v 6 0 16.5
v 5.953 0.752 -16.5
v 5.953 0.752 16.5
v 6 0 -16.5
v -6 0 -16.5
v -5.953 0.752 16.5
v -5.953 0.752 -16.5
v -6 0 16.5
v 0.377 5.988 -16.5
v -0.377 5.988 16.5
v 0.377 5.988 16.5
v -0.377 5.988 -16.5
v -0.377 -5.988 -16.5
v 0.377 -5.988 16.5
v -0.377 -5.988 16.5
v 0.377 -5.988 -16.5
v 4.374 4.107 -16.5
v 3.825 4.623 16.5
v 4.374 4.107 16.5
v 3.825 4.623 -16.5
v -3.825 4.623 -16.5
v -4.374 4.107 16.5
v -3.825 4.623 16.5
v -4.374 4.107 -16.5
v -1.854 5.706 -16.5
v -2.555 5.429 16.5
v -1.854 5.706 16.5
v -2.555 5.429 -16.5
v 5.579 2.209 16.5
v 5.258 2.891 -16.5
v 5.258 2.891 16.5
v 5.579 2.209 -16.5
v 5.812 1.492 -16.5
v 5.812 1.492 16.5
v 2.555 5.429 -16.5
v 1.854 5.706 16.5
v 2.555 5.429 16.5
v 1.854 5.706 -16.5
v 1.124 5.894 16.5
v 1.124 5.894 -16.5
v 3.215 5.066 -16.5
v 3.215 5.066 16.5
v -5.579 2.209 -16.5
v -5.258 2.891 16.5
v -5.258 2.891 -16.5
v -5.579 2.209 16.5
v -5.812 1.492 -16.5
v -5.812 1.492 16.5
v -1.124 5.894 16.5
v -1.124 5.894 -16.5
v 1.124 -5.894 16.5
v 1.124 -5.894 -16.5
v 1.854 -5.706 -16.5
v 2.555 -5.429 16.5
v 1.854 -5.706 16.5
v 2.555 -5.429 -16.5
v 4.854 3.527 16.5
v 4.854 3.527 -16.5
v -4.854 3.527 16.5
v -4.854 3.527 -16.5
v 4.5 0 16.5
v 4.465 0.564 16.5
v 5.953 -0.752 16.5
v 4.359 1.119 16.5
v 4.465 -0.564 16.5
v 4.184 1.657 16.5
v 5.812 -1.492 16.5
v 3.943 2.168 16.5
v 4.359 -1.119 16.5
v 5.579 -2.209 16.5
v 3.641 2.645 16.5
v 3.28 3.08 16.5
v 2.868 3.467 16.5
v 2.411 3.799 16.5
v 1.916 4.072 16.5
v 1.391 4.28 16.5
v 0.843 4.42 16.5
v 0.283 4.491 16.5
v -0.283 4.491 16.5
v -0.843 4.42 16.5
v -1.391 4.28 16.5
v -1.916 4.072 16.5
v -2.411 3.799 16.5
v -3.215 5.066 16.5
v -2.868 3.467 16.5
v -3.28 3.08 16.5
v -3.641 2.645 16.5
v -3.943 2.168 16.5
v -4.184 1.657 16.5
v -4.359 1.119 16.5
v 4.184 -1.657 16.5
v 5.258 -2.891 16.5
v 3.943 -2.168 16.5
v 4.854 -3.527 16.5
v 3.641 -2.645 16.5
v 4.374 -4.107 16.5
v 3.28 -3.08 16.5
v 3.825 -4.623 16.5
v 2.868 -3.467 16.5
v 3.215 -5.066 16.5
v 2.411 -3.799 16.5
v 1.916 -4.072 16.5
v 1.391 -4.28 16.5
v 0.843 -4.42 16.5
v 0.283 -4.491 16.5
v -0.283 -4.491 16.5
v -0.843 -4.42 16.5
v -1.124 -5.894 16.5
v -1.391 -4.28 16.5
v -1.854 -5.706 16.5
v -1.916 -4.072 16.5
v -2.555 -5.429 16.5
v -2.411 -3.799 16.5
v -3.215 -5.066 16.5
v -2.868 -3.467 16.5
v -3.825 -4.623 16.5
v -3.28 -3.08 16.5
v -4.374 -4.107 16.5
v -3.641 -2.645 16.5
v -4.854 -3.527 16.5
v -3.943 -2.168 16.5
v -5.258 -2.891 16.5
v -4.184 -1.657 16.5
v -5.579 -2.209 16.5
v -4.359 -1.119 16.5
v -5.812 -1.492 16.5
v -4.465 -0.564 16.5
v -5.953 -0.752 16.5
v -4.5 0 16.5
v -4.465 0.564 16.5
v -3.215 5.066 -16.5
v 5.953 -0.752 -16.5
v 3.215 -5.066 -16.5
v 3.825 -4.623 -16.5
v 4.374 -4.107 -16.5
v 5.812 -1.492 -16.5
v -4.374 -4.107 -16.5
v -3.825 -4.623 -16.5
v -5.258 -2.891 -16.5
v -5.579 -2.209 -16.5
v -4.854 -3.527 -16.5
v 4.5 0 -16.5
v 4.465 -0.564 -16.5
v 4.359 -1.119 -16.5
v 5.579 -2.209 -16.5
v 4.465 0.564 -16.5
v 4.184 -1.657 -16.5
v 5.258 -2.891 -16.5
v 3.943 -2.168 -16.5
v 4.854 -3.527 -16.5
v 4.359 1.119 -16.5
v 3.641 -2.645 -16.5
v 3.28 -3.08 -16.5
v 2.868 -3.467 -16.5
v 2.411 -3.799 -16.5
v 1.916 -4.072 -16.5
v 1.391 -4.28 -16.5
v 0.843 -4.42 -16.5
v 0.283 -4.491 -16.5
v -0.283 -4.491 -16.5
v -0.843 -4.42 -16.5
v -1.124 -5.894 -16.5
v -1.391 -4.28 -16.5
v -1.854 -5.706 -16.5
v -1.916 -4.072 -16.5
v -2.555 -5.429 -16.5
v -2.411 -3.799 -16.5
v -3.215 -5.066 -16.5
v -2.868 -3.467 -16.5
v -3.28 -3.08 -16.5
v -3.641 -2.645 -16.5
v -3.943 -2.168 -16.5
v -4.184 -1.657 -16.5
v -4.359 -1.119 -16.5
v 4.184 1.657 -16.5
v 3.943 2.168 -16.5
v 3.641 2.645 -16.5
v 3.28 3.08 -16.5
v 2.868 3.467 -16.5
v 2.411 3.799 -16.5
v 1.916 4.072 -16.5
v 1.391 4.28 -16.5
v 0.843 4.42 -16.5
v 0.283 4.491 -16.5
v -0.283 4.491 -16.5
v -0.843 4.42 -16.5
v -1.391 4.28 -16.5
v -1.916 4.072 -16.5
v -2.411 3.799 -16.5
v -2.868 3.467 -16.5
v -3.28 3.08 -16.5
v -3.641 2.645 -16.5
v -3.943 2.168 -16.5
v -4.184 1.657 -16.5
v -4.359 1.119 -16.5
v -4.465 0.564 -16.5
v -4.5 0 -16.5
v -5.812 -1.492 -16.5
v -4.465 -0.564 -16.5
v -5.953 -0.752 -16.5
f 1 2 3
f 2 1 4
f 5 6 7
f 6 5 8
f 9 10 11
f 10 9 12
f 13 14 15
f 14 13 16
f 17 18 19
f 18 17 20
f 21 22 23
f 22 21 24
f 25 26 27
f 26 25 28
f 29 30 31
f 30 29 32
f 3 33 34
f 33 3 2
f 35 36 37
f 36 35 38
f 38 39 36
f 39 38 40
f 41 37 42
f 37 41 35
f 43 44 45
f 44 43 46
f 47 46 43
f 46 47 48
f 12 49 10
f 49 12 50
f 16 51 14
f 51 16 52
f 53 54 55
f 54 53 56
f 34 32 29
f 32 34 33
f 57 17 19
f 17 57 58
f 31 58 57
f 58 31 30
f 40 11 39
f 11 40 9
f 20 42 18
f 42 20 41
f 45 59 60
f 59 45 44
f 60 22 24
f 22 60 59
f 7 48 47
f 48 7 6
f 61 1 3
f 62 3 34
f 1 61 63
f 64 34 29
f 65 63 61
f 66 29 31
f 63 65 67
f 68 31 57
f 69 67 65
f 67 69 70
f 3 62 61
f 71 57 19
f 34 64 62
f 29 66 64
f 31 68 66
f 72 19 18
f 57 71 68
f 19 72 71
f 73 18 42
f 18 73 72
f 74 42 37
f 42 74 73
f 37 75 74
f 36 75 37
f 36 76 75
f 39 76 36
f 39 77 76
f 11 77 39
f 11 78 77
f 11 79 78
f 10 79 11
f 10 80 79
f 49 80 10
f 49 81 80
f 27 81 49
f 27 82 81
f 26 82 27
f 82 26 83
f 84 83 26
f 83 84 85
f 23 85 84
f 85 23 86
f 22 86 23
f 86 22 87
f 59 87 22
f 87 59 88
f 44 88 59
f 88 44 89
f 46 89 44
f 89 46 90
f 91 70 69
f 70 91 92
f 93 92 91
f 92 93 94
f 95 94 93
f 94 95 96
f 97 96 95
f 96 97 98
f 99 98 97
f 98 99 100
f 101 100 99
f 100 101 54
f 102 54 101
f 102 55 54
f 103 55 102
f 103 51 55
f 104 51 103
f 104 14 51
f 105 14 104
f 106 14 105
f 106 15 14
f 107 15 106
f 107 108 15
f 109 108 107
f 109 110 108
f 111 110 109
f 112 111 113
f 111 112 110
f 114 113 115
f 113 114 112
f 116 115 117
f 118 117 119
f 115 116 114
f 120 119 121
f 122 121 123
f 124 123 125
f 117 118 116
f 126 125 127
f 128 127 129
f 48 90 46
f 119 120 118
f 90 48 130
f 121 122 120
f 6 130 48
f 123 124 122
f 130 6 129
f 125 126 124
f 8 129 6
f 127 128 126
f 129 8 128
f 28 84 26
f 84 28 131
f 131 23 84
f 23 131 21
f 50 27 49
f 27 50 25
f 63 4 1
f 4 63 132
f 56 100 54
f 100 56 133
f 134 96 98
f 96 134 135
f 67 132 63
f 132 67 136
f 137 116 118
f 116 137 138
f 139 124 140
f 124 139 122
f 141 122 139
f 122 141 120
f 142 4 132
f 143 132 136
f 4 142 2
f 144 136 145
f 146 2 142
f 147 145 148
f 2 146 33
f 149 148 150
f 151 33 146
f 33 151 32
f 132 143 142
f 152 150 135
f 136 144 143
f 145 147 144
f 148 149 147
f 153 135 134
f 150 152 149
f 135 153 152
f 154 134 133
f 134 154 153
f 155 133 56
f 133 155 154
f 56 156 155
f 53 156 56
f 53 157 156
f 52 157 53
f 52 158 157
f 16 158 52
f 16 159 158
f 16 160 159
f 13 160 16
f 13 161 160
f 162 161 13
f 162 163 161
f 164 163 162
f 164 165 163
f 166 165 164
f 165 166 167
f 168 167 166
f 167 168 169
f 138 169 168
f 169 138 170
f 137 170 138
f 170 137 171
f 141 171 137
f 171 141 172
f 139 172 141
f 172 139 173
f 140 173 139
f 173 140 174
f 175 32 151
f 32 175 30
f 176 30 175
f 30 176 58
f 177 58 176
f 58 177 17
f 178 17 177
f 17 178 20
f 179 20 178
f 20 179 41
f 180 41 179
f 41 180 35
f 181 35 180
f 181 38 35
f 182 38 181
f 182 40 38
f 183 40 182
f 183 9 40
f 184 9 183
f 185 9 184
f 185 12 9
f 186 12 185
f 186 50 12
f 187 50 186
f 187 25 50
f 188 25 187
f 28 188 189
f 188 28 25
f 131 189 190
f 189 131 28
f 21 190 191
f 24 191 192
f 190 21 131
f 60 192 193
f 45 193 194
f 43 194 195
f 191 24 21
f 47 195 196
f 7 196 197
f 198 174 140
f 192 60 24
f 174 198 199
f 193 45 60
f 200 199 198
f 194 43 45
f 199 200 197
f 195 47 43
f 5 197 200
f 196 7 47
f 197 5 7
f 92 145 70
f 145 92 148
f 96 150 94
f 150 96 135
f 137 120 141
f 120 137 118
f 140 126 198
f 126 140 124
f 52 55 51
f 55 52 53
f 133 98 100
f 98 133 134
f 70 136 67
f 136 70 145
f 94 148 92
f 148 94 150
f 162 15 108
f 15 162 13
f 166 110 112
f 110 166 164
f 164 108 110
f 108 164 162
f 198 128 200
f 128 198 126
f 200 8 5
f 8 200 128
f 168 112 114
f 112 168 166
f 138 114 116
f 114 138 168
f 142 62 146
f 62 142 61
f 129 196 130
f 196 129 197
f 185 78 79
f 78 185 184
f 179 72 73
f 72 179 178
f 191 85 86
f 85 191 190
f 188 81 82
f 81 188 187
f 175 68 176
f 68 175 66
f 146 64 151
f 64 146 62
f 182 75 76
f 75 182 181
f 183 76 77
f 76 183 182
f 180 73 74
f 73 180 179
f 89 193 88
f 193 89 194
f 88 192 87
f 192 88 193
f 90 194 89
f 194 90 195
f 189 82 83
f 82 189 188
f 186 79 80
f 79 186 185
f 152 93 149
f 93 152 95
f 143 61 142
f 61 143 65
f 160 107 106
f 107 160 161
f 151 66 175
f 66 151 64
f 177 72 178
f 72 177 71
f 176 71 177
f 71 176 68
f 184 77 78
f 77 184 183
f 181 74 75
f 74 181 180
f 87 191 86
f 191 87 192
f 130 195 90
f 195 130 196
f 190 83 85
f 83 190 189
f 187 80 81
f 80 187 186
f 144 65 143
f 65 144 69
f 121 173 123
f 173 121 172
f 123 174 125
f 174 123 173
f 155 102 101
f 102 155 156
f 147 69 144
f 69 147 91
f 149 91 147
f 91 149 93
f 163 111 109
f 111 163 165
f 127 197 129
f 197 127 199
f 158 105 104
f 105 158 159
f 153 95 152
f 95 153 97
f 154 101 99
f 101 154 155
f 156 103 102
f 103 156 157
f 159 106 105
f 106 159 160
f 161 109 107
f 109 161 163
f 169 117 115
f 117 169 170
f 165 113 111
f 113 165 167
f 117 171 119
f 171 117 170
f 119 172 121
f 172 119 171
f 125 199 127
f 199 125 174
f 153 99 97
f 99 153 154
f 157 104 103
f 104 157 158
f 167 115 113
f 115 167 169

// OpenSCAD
$fn = 50;


difference() {
	union() {
		translate(v = [0, 0, -16.5000000000]) {
			cylinder(h = 33, r = 6.0000000000);
		}
	}
	union() {
		translate(v = [0, 0, -100.0000000000]) {
			cylinder(h = 200, r = 4.5000000000);
		}
	}
}
